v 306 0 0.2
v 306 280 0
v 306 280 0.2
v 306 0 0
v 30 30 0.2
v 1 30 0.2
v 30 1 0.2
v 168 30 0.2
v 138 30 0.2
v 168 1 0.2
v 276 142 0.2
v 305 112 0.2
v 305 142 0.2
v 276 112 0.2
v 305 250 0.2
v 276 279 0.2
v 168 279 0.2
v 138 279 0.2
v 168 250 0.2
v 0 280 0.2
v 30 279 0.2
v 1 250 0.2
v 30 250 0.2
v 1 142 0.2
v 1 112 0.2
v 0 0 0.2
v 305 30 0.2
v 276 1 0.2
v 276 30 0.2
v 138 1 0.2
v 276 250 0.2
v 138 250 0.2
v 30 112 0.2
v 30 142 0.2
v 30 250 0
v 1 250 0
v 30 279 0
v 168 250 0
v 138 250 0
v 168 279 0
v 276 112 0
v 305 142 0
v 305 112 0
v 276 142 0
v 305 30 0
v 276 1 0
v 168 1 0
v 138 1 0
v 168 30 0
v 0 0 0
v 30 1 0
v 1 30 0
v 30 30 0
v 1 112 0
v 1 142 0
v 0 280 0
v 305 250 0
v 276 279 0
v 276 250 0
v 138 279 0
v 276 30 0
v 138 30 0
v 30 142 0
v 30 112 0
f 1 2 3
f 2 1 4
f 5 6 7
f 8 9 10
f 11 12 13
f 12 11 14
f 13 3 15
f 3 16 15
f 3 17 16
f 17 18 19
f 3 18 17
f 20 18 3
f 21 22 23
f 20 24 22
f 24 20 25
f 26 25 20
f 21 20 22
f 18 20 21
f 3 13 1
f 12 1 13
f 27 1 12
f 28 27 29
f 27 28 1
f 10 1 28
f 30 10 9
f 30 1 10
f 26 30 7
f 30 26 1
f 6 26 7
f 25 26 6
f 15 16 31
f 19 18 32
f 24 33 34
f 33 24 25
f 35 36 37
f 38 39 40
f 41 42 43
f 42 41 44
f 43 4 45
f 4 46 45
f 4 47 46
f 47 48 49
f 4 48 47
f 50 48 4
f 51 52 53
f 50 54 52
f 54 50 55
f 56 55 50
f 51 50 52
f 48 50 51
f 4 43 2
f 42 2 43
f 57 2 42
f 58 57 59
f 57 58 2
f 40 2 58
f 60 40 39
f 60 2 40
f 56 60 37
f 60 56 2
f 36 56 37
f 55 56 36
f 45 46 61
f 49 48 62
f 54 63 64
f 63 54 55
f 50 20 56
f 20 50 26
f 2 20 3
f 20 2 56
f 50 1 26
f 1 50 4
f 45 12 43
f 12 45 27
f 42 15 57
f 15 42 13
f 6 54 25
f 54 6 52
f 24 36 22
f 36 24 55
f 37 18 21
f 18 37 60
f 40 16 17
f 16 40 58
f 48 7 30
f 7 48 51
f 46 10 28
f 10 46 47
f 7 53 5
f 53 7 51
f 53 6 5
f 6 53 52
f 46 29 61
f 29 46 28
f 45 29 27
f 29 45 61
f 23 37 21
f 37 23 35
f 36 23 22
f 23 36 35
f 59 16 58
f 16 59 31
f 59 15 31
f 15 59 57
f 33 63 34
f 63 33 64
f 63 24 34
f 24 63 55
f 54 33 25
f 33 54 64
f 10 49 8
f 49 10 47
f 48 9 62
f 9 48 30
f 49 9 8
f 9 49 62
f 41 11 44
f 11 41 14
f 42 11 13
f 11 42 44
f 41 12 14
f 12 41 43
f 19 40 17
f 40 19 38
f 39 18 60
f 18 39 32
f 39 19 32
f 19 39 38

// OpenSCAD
max_x = 306; // cura seems to need 1mm cut off each side in order to slice
max_y = 280; // cura seems to need 1mm cut off each side in order to slice
layer_height = 0.2;
num_layers = 1;
line_width = 1;
num_lines = 1;
corner_cube_size = 30;
object_height = layer_height * num_layers;

difference() {
    cube([max_x, max_y, object_height]);
    translate([line_width*num_lines,line_width*num_lines,0]){
        cube([max_x-((line_width*num_lines)*2),max_y-((line_width*num_lines)*2), object_height]);
    }
}
// bottom left corner
cube([corner_cube_size, corner_cube_size, object_height]);
// bottom right corner
translate([max_x - corner_cube_size, 0, 0]){
    cube([corner_cube_size, corner_cube_size, object_height]);
}
// top left corner
translate([0, max_y - corner_cube_size, 0]){
    cube([corner_cube_size, corner_cube_size, object_height]);
}
// top right corner
translate([max_x - corner_cube_size, max_y - corner_cube_size, 0]){
    cube([corner_cube_size, corner_cube_size, object_height]);
}
// middle left
translate([0, (max_y/2) - (corner_cube_size-2), 0]){
    cube([corner_cube_size, corner_cube_size, object_height]);
}
// middle bottom
translate([(max_x/2) - (corner_cube_size/2), 0, 0]){
    cube([corner_cube_size, corner_cube_size, object_height]);
}
// middle right
translate([max_x - corner_cube_size, (max_y/2) - (corner_cube_size-2), 0]){
    cube([corner_cube_size, corner_cube_size, object_height]);
}
// middle top
translate([(max_x/2) - (corner_cube_size/2), max_y - corner_cube_size, 0]){
    cube([corner_cube_size, corner_cube_size, object_height]);
}
